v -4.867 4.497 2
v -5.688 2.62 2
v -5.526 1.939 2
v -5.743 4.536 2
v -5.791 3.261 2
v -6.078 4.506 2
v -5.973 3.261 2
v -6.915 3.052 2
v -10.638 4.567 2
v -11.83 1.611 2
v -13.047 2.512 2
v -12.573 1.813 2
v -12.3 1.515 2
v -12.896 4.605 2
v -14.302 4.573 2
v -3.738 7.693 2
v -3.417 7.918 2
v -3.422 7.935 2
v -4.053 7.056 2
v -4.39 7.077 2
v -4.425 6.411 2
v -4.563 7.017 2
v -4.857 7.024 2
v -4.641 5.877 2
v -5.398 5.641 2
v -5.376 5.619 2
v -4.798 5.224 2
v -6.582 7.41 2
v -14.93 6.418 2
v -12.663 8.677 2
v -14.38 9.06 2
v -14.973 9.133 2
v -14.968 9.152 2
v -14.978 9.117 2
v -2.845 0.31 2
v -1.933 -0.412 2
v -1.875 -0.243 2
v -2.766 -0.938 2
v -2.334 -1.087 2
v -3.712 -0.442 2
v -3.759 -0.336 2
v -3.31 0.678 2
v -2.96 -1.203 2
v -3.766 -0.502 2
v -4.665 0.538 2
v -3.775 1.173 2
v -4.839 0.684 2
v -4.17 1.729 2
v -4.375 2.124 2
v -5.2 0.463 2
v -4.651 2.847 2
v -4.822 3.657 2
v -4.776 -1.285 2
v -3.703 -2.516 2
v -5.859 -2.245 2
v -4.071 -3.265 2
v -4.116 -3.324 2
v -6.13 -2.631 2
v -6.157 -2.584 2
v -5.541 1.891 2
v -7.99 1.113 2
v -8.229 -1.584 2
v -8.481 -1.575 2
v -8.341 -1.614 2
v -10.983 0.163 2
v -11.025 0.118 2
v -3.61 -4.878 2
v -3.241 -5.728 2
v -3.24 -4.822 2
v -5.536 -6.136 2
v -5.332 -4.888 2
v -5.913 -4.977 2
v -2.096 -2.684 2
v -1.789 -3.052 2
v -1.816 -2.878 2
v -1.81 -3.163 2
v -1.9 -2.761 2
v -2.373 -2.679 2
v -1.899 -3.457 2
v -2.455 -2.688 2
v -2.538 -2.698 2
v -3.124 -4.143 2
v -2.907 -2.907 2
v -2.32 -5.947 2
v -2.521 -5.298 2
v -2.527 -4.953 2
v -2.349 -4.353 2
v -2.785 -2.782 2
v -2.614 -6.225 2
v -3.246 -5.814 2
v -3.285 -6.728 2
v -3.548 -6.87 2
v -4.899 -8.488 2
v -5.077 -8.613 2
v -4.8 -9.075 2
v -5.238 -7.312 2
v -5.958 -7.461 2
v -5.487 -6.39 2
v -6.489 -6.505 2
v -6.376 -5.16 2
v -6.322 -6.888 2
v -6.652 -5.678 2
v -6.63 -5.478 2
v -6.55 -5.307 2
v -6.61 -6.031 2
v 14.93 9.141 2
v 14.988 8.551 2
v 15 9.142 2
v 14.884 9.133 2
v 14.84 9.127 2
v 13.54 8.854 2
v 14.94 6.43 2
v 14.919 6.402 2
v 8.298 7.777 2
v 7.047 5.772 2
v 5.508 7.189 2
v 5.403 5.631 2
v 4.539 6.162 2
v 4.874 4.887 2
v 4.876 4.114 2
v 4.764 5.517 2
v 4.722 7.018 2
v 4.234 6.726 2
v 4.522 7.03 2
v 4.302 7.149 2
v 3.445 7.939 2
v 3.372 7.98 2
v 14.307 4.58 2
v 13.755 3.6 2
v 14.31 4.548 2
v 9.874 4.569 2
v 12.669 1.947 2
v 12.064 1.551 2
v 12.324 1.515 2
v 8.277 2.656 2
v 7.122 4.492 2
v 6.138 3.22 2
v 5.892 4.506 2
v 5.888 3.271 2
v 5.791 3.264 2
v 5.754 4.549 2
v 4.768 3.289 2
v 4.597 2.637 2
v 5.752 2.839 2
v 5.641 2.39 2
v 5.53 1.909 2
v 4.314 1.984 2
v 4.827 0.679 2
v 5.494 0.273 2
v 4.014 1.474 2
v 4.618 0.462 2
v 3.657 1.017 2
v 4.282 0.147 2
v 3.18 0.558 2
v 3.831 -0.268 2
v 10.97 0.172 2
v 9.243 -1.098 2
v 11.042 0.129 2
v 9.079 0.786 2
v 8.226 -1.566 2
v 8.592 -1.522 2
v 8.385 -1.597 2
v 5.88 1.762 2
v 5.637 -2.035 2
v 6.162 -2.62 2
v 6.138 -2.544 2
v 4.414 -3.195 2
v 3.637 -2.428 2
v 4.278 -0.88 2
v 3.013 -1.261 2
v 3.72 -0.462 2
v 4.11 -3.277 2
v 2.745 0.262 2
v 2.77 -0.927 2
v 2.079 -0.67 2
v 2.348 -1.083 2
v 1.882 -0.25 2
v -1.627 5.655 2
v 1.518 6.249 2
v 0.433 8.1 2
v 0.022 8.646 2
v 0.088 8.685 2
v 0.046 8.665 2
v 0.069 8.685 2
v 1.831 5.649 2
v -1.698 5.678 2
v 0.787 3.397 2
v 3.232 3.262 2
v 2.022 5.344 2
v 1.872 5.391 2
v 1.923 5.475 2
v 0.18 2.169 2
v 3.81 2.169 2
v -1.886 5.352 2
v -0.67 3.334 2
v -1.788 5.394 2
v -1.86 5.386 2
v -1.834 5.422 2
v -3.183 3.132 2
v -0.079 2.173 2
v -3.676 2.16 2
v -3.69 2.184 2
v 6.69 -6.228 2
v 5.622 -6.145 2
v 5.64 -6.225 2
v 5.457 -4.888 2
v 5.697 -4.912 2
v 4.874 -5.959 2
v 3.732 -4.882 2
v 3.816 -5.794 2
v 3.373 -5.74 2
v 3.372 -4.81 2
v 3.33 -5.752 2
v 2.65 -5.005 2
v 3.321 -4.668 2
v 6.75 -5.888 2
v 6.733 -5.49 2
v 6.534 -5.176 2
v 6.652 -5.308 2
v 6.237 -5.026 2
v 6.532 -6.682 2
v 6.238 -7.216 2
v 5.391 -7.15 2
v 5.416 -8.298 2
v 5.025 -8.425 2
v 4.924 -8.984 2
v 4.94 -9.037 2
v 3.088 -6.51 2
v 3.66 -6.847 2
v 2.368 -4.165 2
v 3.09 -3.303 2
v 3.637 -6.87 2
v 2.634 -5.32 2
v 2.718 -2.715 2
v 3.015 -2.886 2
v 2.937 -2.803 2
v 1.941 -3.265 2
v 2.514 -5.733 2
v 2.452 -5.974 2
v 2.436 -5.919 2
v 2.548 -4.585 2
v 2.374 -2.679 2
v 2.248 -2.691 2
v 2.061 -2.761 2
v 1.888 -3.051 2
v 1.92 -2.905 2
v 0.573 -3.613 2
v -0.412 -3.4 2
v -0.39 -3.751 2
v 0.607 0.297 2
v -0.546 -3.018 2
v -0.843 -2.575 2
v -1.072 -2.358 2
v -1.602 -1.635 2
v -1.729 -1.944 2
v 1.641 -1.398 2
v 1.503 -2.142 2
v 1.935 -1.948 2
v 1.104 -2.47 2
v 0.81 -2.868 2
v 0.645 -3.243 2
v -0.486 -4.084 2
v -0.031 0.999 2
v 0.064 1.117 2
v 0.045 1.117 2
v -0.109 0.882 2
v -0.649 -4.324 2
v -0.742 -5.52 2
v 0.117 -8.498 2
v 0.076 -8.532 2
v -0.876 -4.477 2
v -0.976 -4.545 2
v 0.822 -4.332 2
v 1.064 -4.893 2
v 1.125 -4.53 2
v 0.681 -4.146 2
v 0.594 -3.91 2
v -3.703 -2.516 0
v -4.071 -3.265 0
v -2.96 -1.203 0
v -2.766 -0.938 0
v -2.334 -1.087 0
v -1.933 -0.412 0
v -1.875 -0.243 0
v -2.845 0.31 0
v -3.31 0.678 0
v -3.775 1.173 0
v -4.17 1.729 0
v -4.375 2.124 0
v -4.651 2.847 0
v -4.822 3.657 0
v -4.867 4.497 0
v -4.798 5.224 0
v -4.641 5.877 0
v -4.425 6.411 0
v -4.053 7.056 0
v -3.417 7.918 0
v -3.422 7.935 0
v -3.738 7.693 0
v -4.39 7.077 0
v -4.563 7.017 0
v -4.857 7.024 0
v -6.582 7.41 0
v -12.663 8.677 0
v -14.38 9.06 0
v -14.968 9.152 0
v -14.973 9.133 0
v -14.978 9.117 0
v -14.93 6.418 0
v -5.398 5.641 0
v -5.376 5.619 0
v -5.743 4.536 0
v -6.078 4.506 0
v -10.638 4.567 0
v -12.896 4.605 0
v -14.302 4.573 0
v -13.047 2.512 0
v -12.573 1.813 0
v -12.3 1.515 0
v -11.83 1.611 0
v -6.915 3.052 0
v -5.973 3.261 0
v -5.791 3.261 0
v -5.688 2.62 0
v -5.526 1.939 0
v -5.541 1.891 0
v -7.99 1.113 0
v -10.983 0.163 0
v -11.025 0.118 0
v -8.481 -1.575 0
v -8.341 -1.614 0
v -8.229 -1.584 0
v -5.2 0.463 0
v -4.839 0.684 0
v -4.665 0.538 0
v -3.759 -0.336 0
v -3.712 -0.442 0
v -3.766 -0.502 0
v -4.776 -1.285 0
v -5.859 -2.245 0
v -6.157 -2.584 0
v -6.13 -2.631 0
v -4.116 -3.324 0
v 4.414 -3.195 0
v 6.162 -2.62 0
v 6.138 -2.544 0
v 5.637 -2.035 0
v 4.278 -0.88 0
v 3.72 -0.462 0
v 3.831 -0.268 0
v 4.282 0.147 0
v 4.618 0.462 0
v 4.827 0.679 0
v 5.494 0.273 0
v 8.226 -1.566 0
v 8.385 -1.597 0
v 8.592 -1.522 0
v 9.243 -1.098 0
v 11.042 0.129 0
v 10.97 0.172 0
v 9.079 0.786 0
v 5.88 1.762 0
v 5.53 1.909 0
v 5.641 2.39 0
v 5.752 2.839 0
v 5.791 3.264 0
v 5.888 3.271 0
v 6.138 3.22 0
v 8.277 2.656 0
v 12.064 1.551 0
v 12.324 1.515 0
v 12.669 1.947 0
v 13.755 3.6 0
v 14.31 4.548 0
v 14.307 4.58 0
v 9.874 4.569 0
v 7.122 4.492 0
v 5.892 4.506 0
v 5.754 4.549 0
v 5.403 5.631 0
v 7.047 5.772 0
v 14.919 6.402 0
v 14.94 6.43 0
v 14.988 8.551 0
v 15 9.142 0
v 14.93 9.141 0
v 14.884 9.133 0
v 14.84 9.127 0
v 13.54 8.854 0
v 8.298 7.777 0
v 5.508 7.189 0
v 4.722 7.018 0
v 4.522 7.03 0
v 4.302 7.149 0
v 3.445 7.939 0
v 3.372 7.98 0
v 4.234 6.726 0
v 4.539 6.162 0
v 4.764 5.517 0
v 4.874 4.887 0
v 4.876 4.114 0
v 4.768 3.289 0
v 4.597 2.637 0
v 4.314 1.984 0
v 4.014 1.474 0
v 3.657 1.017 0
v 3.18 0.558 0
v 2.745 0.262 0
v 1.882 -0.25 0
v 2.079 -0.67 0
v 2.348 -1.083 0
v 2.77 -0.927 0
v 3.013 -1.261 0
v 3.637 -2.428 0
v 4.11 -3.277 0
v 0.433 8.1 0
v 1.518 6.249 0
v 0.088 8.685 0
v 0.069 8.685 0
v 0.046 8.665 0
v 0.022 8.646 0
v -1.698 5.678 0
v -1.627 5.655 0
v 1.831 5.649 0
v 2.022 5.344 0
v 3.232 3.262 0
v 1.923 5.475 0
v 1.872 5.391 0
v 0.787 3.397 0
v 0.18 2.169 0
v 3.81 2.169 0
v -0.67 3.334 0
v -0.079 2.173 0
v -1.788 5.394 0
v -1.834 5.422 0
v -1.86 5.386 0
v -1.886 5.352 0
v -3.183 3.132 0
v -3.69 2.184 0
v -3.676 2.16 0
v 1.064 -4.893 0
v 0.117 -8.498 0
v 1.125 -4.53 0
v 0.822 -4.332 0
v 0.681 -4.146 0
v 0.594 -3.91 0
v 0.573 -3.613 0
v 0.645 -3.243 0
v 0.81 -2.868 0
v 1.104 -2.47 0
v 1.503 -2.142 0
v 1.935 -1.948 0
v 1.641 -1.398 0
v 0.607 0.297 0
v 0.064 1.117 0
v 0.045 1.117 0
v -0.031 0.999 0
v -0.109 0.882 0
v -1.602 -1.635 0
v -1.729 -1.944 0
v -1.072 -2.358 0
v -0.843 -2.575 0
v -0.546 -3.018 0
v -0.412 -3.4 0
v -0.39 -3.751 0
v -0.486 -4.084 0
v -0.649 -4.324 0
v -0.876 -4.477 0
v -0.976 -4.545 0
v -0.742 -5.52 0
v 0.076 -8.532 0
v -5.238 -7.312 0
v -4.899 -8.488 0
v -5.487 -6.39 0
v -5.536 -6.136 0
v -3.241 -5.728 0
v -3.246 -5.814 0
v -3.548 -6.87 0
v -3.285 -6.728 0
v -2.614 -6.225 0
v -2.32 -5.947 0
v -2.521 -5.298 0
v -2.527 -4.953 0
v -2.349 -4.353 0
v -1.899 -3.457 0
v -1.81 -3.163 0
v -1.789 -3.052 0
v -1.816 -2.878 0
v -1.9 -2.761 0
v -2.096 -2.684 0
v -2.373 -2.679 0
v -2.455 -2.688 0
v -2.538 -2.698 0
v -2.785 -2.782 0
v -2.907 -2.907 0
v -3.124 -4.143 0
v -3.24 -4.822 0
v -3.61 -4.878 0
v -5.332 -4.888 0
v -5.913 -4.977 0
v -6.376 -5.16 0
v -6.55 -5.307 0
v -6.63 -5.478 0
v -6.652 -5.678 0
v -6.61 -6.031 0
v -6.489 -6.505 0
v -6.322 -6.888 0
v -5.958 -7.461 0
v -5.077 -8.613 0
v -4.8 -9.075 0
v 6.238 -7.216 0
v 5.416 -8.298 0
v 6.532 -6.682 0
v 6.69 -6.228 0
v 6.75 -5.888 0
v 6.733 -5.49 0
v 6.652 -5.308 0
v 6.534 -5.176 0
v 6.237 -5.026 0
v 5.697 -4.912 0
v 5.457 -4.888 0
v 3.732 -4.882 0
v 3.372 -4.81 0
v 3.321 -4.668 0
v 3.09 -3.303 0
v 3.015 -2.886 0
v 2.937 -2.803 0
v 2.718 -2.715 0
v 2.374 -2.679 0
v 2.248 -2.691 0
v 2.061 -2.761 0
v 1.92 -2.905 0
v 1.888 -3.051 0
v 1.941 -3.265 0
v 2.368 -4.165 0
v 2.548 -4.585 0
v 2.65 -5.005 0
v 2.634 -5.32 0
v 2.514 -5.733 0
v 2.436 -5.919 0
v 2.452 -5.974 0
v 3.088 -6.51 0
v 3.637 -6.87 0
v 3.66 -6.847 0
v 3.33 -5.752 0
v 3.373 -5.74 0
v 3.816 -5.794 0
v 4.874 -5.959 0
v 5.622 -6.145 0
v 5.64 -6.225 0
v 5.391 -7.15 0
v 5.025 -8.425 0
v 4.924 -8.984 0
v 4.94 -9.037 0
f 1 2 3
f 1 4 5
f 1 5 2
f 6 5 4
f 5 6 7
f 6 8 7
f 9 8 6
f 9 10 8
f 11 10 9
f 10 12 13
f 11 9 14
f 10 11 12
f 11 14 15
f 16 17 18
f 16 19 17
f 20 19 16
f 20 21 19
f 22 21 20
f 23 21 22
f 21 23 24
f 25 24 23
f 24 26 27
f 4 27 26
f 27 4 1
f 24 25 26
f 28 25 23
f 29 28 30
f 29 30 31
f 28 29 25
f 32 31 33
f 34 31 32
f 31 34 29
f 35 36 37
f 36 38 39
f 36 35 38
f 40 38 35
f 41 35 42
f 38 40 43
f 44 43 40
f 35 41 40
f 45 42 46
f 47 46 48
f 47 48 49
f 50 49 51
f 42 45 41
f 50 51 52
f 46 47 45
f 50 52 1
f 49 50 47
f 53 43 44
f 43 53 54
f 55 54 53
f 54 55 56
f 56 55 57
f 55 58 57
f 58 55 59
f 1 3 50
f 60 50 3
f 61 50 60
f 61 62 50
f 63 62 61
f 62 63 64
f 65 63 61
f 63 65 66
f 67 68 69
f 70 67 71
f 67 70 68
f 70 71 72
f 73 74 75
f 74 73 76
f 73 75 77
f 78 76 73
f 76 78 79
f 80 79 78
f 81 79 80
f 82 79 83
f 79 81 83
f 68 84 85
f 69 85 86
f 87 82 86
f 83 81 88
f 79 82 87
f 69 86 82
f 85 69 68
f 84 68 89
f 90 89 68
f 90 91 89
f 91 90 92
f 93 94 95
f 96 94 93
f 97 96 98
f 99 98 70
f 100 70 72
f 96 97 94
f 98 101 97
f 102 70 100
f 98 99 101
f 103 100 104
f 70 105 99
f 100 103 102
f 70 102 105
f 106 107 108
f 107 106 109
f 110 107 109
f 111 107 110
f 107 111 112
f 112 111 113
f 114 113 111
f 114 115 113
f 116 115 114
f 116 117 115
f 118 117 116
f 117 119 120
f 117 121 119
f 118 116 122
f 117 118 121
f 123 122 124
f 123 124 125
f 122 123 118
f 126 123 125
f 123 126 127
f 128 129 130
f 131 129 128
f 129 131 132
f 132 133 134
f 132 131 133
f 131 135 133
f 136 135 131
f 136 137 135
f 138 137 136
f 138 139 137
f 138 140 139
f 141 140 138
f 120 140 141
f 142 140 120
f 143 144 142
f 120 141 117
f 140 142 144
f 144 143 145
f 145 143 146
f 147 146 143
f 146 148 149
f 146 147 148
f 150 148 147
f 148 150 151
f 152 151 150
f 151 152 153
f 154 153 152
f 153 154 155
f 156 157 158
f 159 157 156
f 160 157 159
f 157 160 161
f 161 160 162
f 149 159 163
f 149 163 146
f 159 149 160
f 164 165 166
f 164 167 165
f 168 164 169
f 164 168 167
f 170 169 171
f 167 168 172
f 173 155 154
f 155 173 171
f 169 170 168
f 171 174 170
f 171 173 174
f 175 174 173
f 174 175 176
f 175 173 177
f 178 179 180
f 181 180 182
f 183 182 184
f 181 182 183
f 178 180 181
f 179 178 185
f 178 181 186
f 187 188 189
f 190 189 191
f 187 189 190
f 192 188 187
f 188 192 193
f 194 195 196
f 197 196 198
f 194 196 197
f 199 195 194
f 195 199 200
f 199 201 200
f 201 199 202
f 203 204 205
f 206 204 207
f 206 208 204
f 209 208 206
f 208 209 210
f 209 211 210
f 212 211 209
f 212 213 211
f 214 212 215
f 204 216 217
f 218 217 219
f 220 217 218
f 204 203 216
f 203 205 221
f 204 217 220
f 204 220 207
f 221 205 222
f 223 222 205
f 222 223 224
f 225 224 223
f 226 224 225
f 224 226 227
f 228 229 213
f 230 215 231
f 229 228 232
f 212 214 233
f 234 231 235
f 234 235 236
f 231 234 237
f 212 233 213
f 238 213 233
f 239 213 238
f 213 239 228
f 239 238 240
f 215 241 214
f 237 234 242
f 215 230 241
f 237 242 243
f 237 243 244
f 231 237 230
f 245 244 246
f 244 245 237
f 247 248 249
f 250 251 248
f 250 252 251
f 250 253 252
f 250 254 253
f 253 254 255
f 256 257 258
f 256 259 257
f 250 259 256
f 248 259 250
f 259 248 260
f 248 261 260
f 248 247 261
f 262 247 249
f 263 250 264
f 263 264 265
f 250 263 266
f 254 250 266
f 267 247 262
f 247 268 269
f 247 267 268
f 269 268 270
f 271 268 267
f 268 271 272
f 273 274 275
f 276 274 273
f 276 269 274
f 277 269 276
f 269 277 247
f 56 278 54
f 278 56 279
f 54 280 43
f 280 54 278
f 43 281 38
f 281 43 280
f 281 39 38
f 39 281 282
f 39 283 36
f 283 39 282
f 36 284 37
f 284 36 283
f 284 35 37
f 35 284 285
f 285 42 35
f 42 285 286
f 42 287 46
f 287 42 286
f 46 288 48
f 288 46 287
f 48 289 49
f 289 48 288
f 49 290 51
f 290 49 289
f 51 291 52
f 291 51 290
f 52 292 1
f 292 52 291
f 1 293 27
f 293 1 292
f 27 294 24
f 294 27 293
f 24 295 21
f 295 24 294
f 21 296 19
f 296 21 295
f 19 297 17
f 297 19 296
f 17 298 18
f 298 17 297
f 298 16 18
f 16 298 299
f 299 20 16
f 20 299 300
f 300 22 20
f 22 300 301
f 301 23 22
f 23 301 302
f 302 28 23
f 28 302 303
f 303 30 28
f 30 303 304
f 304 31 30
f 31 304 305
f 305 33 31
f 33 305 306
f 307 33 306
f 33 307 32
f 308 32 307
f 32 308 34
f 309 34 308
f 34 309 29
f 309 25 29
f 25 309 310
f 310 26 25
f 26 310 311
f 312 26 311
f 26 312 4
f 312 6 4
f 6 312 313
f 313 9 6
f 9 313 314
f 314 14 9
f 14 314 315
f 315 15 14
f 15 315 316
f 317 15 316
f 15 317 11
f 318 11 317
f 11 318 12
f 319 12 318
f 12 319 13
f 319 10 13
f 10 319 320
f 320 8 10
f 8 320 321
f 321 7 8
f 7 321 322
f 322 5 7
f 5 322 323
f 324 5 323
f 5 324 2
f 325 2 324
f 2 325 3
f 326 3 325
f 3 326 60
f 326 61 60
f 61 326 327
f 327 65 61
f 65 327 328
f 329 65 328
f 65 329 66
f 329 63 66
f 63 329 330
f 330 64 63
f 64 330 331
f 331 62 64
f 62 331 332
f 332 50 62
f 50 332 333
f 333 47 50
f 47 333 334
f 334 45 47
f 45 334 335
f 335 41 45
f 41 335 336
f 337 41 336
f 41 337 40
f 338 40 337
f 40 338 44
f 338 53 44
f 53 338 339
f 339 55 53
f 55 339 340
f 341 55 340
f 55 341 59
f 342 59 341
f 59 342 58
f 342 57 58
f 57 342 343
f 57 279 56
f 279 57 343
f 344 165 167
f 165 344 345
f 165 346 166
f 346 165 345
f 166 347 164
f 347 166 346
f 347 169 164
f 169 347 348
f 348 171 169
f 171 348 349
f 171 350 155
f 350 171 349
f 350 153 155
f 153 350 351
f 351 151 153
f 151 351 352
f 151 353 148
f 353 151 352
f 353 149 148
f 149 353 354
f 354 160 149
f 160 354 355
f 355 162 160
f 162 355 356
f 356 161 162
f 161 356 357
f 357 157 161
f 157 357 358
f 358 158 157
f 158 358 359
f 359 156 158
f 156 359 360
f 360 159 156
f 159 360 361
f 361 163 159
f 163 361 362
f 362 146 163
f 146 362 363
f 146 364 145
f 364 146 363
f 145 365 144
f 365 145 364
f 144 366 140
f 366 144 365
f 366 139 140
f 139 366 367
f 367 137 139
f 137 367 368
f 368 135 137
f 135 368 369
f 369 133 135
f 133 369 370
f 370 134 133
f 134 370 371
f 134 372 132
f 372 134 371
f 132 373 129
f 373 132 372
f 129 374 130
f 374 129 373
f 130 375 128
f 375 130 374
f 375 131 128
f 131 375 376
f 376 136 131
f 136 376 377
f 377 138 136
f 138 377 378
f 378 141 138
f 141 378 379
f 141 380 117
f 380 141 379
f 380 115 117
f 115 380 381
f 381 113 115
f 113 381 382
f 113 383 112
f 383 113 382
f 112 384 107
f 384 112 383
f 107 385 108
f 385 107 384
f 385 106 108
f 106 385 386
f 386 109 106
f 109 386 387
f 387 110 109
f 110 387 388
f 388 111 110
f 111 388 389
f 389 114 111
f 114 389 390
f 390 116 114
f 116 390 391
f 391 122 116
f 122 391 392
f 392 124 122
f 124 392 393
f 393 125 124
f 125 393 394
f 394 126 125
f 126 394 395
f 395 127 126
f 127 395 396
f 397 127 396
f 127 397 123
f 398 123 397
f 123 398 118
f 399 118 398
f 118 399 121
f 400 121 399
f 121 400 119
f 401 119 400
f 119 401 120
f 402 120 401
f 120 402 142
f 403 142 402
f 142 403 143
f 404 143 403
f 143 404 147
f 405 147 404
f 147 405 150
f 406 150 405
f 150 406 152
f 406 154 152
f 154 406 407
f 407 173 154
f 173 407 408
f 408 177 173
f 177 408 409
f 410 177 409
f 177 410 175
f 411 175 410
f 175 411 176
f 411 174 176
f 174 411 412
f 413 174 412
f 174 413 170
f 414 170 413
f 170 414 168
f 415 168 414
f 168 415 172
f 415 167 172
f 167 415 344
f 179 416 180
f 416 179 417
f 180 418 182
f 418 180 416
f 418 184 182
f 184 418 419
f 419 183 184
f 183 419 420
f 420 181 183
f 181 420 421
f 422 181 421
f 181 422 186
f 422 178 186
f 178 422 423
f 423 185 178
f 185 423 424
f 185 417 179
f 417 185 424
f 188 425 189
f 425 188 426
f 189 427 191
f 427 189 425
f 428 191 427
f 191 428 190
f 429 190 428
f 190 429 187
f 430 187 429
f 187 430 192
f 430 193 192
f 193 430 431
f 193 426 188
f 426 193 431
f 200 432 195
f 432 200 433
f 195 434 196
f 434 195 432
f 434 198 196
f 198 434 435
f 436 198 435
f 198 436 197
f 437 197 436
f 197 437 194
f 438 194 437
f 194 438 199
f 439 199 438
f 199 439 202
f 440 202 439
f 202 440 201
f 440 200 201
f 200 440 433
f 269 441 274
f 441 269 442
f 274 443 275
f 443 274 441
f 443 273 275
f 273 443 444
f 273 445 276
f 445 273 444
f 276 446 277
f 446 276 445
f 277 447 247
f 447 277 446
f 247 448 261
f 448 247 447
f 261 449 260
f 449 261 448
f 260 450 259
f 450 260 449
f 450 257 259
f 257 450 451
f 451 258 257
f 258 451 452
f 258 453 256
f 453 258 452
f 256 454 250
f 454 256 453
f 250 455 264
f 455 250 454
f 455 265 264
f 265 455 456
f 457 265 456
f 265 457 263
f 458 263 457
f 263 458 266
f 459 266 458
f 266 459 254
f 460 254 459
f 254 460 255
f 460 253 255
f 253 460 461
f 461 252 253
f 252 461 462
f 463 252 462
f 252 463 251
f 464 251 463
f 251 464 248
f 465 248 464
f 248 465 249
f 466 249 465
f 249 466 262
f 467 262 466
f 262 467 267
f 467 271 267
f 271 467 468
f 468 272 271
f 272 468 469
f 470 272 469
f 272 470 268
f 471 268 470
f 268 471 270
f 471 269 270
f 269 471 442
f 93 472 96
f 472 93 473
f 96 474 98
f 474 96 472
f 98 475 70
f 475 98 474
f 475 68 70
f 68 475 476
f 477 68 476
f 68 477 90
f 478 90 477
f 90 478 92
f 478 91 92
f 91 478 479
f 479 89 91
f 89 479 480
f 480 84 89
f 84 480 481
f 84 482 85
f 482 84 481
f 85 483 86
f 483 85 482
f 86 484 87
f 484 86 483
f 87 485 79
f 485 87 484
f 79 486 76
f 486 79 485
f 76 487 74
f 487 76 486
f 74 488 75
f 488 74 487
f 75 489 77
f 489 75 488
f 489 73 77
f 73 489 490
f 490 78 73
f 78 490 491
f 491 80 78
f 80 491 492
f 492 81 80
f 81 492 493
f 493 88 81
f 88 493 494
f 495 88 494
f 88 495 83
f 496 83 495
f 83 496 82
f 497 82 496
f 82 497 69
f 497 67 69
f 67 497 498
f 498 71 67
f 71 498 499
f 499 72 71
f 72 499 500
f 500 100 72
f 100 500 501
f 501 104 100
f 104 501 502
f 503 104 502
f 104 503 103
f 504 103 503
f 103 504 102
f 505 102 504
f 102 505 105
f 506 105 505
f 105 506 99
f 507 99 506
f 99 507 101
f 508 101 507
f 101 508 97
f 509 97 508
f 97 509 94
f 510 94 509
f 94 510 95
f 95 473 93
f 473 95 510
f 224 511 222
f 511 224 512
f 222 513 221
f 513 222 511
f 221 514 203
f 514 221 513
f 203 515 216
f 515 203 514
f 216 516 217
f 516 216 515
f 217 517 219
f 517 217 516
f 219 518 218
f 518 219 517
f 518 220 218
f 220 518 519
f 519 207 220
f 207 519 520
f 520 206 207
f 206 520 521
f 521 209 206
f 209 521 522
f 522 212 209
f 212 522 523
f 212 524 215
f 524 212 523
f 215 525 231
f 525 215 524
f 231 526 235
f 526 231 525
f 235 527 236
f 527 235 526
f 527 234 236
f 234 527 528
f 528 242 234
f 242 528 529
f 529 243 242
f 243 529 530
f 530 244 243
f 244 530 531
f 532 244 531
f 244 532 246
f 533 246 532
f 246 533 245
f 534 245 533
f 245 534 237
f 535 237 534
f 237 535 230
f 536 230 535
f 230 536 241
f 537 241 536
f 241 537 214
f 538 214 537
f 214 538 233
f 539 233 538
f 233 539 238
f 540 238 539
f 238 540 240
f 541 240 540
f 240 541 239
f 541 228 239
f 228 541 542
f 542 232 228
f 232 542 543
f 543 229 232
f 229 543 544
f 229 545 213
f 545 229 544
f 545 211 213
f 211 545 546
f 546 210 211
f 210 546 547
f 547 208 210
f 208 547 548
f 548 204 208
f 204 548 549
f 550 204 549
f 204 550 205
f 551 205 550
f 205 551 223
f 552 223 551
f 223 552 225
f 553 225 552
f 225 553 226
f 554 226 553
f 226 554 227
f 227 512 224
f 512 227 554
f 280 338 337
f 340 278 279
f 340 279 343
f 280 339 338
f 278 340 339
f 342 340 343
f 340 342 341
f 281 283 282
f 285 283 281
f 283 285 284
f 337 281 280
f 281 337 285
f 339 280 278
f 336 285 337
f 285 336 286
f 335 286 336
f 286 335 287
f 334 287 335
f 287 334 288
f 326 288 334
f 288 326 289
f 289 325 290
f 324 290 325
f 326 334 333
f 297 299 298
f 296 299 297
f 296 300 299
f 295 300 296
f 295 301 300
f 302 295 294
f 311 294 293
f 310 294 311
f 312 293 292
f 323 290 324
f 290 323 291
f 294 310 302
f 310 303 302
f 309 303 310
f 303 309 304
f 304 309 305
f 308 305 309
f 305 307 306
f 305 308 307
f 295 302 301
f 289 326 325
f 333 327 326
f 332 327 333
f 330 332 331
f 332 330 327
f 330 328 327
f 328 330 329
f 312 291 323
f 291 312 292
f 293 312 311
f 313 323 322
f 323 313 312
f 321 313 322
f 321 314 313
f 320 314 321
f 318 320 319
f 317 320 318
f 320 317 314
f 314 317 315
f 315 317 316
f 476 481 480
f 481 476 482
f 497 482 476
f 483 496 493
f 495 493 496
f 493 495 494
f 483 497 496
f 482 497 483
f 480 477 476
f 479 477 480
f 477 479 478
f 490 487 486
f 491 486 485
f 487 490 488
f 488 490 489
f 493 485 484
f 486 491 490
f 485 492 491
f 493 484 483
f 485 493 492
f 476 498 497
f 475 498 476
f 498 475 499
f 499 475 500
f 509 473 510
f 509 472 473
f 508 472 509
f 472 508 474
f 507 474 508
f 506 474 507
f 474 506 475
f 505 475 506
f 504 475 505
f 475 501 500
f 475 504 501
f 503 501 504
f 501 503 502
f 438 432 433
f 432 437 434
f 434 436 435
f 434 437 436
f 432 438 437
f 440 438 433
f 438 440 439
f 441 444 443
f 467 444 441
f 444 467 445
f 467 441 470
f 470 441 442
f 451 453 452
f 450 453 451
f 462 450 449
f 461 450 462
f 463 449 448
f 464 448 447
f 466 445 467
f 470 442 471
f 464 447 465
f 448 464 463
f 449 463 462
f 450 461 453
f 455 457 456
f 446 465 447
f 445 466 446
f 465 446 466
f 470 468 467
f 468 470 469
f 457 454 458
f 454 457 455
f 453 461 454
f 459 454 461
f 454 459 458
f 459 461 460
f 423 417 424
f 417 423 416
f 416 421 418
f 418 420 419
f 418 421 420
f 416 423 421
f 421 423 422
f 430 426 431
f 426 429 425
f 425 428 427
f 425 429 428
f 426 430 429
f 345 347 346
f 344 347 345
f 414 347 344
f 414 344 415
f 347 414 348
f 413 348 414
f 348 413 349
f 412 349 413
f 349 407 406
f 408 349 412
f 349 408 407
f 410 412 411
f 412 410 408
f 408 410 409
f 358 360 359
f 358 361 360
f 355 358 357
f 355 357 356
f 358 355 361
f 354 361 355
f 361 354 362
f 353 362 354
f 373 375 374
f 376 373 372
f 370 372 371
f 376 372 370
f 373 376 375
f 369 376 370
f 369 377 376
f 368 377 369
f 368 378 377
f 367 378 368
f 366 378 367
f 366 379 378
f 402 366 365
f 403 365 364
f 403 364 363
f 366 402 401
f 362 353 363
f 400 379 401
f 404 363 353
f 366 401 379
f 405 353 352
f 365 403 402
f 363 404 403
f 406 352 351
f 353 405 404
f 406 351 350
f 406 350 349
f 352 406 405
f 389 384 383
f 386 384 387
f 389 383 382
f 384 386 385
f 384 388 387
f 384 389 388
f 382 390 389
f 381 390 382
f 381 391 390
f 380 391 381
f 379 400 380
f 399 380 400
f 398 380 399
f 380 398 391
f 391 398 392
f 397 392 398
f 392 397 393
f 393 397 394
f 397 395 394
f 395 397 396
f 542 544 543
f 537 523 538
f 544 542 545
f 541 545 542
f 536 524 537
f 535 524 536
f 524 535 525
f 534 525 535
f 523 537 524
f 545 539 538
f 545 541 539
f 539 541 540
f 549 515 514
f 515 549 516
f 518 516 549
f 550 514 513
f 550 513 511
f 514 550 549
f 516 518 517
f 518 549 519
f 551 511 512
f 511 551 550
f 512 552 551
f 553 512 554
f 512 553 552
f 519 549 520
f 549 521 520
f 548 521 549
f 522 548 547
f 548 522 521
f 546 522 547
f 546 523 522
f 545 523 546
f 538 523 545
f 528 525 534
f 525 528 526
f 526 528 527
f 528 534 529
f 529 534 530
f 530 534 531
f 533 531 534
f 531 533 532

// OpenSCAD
module 52b80f59f8fa244634a8f9b7cbb7bccf_1()
{
 /* Generated by trace2scad version 20150415
    http://aggregate.org/MAKE/TRACE2SCAD/
    Optimized model has 279/3844 original points
 */
 color([0.48, 0.48, 0.48])
 assign(minx=0) /* polygon minx=15 */
 assign(miny=0) /* polygon miny=75 */
 assign(maxx=20000) /* polygon maxx=20000 */
 assign(maxy=12250) /* polygon maxy=12226 */
 assign(dx=maxx-minx)
 assign(dy=maxy-miny)
 assign(maxd=((dx>dy)?dx:dy))
 scale([1/maxd, 1/maxd, 1])
 translate([-minx-dx/2, -miny-dy/2, 0])
 linear_extrude(height=1, convexity=279)
 union() {
  union() {
   polygon([[18,12214],[15,12203],[47,10404],[6401,9886],[6416,9871],[6171,9149],[5948,9129],[2908,9170],[1403,9195],[465,9174],[1302,7800],[1618,7334],[1800,7135],[2113,7199],[5390,8160],[6018,8299],[6139,8299],[6208,7872],[6316,7418],[6306,7386],[4673,6867],[2678,6234],[2650,6204],[4346,5075],[4439,5049],[4514,5069],[6533,6434],[6774,6581],[6890,6484],[7494,5901],[7525,5830],[7489,5790],[6816,5268],[6094,4628],[5895,4402],[5913,4371],[7256,3909],[7286,3948],[7531,4448],[8027,5323],[8156,5500],[8444,5400],[8711,5850],[8750,5963],[8103,6332],[7793,6577],[7483,6907],[7220,7278],[7083,7541],[6899,8023],[6785,8563],[6755,9123],[6801,9608],[6906,10043],[7050,10399],[7298,10829],[7722,11404],[7719,11415],[7508,11254],[7073,10843],[6958,10803],[6762,10808],[5612,11065],[1558,11910],[413,12165],[21,12226]], convexity=24);
   polygon([[19923,12214],[19893,12210],[19027,12028],[15532,11310],[13672,10918],[13148,10804],[13015,10812],[12868,10891],[12297,11418],[12248,11445],[12823,10609],[13026,10233],[13176,9803],[13249,9383],[13251,8868],[13179,8318],[13065,7883],[12876,7448],[12676,7108],[12438,6803],[12120,6497],[11830,6300],[11255,5958],[11386,5678],[11565,5403],[11847,5507],[12009,5284],[12425,4506],[12740,3940],[12943,3995],[14108,4378],[14092,4429],[13758,4768],[12852,5538],[12480,5817],[12554,5946],[12855,6223],[13079,6433],[13218,6578],[13663,6307],[15484,5081],[15590,5060],[15728,5110],[16162,5393],[17361,6211],[17313,6240],[16053,6649],[13920,7300],[13687,7398],[13761,7718],[13835,8018],[13861,8301],[13925,8306],[14092,8272],[15518,7896],[18043,7159],[18216,7135],[18446,7423],[19170,8525],[19540,9157],[19538,9178],[16583,9171],[14748,9120],[13928,9129],[13836,9158],[13602,9879],[14698,9973],[19946,10393],[19960,10412],[19992,11826],[20000,12220],[19953,12219]], convexity=23);
   polygon([[10031,11902],[10015,11889],[8868,9910],[8915,9895],[11221,9891],[11012,10291],[10289,11525],[10059,11915],[10046,11915]], convexity=5);
   polygon([[11265,9747],[11248,9719],[10525,8390],[10120,7571],[12540,7571],[12155,8300],[11348,9688],[11282,9775]], convexity=5);
   polygon([[8760,9716],[8743,9693],[7878,8213],[7540,7581],[7549,7565],[9947,7574],[9553,8348],[8808,9721],[8777,9740]], convexity=6);
   polygon([[9979,6791],[9927,6713],[8932,5035],[8847,4829],[9285,4553],[9438,4408],[9636,4113],[9725,3858],[9740,3624],[9676,3402],[9567,3242],[9416,3140],[9349,3095],[9505,2445],[10051,437],[10078,460],[10709,2863],[10750,3105],[10548,3237],[10454,3361],[10396,3518],[10382,3716],[10430,3963],[10540,4213],[10736,4478],[11002,4697],[11290,4826],[11094,5193],[10405,6323],[10043,6870],[10030,6870]], convexity=10);
   polygon([[8363,4333],[8308,4326],[8143,4270],[8062,4187],[7917,3363],[7840,2910],[7593,2873],[6445,2866],[6058,2807],[5749,2685],[5633,2587],[5580,2473],[5565,2340],[5593,2104],[5674,1788],[5785,1533],[6028,1151],[6615,383],[6800,75],[6734,466],[6508,1250],[6342,1865],[6309,2034],[7839,2306],[7836,2249],[7635,1545],[7810,1640],[8257,1975],[8453,2160],[8319,2593],[8315,2823],[8434,3223],[8734,3820],[8793,4016],[8807,4090],[8789,4206],[8733,4284],[8603,4336],[8418,4339]], convexity=11);
   polygon([[11541,4335],[11499,4331],[11374,4284],[11280,4188],[11259,4091],[11294,3948],[11579,3348],[11699,3068],[11767,2788],[11756,2578],[11676,2303],[11624,2179],[11635,2142],[12059,1785],[12425,1545],[12440,1560],[12220,2290],[12249,2298],[12544,2262],[13249,2152],[13748,2028],[13760,1975],[13594,1358],[13350,508],[13283,136],[13293,100],[13611,593],[14159,1314],[14355,1670],[14460,1973],[14500,2200],[14489,2465],[14435,2586],[14356,2674],[14158,2774],[13798,2850],[13638,2866],[12488,2870],[12248,2918],[12214,3013],[12060,3923],[12010,4201],[11958,4256],[11812,4315],[11583,4339]], convexity=14);
  }
 }
}

module 52b80f59f8fa244634a8f9b7cbb7bccf()
{
 /* all layers combined, scaled to within a 1mm cube */
 scale([1, 1, 1/1])
 difference() {
  union() {
   scale([1,1,2]) translate([0,0,-0.5]) 52b80f59f8fa244634a8f9b7cbb7bccf_1();
  }
  translate([0,0,-2]) cube([2,2,4],center=true);
 }
}

scale([30, 30, 2]) {
	52b80f59f8fa244634a8f9b7cbb7bccf();
}
